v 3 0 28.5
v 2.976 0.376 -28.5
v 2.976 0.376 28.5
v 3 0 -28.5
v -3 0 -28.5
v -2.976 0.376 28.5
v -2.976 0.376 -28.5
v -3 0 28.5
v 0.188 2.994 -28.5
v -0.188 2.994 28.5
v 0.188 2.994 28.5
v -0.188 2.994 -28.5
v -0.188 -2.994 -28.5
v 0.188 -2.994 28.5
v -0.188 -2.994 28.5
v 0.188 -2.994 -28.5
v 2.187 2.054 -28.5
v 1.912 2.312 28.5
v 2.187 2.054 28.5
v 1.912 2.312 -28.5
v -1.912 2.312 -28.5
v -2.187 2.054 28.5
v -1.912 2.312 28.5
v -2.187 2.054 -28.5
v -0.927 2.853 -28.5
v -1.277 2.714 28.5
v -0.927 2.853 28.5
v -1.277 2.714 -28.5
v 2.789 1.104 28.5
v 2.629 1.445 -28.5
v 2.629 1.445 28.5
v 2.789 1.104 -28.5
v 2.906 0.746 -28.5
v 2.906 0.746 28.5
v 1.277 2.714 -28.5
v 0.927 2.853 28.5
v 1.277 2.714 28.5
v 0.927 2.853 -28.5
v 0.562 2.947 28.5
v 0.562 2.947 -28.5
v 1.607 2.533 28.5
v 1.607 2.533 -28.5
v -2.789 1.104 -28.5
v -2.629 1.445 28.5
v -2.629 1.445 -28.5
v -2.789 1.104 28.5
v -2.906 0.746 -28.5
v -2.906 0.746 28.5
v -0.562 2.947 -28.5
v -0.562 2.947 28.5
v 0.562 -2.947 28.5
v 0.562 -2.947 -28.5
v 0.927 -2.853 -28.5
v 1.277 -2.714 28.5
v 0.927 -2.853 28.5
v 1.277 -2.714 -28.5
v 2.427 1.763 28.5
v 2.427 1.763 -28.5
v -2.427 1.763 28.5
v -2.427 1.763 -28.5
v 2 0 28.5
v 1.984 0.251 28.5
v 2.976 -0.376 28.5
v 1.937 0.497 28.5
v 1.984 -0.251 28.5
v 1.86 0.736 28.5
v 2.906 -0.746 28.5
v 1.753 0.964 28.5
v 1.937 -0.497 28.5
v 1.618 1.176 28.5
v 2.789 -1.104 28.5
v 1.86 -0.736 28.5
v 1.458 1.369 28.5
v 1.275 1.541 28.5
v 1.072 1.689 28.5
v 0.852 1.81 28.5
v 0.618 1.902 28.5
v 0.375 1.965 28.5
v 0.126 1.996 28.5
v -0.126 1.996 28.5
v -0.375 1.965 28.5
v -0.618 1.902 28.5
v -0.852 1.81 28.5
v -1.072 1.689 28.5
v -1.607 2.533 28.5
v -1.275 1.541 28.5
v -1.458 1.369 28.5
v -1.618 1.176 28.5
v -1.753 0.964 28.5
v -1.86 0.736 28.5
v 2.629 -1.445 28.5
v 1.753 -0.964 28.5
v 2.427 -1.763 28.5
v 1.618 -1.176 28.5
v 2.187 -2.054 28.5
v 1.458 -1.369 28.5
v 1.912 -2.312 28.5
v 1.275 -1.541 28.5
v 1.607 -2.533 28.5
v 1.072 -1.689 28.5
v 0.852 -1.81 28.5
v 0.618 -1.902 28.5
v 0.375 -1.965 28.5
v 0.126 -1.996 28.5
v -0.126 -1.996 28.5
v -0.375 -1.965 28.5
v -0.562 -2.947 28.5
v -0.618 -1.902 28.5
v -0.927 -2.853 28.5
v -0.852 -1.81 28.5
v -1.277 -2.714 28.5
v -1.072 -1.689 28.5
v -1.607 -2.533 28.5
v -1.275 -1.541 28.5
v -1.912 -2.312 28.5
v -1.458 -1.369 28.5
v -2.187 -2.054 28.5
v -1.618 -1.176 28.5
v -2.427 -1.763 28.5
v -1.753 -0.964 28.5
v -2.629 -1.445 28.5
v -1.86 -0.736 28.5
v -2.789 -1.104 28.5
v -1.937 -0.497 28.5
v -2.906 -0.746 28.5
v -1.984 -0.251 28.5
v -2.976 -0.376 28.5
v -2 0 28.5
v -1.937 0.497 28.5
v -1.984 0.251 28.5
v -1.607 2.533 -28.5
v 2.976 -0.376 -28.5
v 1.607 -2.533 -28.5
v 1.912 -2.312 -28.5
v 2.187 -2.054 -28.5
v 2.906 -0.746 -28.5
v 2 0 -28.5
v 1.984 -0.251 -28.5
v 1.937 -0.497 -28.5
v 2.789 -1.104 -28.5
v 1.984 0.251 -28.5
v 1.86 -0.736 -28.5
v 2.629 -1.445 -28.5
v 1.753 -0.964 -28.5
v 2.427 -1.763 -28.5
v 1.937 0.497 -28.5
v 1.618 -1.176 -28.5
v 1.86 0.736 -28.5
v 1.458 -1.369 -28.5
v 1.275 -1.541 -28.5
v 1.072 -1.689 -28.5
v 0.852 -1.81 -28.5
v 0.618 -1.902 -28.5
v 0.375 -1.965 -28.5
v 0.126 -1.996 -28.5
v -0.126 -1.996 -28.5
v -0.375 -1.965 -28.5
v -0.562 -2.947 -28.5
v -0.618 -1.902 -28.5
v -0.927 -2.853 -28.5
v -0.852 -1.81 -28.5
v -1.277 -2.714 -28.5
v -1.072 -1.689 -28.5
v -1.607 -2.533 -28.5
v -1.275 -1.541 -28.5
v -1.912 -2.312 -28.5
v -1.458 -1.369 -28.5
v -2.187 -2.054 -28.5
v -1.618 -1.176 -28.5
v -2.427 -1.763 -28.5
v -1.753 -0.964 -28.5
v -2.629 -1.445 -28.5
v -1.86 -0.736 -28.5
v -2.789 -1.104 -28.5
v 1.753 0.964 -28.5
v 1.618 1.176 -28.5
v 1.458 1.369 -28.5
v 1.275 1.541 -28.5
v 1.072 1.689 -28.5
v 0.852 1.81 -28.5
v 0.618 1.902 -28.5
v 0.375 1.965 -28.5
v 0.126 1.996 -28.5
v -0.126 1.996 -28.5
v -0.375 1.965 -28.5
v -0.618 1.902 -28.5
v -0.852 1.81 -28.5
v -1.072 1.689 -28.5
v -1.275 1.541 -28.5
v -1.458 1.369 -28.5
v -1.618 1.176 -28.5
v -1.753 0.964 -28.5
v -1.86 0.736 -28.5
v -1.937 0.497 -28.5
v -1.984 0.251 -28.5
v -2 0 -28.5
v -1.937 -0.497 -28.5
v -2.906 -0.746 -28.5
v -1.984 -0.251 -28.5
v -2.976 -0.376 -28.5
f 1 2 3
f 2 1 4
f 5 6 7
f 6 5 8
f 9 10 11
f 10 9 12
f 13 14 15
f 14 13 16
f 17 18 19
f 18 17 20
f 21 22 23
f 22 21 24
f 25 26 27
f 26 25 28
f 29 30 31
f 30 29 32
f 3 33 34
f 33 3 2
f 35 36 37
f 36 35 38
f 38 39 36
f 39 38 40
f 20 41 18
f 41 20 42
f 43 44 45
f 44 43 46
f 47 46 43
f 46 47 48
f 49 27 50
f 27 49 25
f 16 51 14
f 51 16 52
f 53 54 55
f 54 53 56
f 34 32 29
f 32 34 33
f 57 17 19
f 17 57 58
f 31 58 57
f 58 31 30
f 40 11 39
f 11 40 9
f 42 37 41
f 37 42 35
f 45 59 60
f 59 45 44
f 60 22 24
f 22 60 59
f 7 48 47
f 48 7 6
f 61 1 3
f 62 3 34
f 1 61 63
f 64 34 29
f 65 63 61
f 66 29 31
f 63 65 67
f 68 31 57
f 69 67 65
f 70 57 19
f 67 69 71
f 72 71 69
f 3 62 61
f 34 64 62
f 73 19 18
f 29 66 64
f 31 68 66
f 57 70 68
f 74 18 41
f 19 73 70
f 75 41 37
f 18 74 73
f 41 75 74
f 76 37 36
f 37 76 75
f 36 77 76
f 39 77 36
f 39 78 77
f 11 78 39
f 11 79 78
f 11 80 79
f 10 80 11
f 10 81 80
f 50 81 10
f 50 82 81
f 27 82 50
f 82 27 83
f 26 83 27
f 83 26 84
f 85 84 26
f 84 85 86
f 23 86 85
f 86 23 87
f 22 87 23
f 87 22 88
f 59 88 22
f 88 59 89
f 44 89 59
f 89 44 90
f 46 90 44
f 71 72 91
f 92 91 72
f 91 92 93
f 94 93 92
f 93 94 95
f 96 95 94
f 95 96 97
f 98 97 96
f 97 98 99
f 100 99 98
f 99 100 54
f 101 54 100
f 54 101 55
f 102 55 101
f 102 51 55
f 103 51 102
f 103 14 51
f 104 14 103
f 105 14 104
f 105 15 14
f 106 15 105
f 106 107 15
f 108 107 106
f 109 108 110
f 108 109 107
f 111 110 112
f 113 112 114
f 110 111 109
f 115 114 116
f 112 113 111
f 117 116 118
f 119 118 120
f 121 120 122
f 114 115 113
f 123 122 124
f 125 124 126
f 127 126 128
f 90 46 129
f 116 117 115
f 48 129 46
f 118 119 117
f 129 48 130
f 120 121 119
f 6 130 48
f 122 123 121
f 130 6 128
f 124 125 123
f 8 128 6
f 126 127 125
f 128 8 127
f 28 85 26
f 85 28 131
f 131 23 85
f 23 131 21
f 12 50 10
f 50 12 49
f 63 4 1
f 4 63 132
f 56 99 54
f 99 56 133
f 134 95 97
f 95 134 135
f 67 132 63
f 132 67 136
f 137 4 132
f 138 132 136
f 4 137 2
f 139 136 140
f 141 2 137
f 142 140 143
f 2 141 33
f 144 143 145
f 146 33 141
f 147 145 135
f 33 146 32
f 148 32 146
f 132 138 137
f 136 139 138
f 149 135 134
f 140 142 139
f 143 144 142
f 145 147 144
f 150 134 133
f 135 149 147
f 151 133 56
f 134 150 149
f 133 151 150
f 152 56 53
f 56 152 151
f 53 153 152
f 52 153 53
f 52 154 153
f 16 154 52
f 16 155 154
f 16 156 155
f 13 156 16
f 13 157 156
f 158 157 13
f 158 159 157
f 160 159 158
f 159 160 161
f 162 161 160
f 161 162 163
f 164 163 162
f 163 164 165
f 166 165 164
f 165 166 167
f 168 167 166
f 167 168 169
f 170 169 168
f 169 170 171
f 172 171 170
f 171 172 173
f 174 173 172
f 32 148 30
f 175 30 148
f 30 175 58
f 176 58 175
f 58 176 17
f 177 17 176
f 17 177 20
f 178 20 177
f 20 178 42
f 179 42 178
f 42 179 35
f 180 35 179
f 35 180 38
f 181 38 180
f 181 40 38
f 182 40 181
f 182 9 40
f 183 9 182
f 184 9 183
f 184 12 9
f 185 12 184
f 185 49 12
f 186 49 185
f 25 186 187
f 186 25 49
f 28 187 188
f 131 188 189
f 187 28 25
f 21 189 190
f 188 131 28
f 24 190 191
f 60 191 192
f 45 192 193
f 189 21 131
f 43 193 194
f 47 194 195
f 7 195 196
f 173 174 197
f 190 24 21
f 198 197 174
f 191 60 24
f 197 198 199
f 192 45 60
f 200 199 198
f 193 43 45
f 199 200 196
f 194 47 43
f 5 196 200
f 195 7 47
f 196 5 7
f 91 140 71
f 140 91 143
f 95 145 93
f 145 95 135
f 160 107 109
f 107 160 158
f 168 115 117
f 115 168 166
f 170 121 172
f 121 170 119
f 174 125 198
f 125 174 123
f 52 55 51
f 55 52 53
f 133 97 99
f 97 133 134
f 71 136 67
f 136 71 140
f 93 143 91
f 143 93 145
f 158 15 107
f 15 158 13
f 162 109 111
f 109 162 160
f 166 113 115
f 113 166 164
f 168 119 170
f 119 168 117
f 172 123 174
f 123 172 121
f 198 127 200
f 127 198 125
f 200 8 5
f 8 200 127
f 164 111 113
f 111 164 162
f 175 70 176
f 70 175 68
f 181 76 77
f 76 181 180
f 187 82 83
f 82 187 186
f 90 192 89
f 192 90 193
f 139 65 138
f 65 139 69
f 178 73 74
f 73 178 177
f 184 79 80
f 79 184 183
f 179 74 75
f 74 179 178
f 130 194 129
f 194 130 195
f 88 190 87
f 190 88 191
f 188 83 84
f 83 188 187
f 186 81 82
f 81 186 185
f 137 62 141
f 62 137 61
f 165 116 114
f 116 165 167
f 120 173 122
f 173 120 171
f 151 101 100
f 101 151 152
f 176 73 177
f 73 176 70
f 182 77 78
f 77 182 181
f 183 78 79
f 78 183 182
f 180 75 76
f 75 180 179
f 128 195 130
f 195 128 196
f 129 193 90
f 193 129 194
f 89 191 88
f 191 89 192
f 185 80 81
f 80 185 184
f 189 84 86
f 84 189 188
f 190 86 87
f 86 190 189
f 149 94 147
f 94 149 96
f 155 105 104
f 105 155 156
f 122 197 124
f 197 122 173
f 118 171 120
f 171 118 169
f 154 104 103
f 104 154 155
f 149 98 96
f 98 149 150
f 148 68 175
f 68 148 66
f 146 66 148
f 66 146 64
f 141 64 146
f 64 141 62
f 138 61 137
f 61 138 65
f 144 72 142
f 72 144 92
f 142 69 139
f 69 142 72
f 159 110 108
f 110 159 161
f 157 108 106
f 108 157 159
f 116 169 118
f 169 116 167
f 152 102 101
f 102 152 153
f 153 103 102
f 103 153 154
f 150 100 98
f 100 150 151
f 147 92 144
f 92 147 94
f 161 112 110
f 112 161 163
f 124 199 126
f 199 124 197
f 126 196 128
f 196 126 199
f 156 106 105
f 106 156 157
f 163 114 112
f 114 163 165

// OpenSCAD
$fn = 50;


difference() {
	union() {
		translate(v = [0, 0, -28.5000000000]) {
			cylinder(h = 57, r = 3.0000000000);
		}
	}
	union() {
		translate(v = [0, 0, -100.0000000000]) {
			cylinder(h = 200, r = 2);
		}
	}
}
